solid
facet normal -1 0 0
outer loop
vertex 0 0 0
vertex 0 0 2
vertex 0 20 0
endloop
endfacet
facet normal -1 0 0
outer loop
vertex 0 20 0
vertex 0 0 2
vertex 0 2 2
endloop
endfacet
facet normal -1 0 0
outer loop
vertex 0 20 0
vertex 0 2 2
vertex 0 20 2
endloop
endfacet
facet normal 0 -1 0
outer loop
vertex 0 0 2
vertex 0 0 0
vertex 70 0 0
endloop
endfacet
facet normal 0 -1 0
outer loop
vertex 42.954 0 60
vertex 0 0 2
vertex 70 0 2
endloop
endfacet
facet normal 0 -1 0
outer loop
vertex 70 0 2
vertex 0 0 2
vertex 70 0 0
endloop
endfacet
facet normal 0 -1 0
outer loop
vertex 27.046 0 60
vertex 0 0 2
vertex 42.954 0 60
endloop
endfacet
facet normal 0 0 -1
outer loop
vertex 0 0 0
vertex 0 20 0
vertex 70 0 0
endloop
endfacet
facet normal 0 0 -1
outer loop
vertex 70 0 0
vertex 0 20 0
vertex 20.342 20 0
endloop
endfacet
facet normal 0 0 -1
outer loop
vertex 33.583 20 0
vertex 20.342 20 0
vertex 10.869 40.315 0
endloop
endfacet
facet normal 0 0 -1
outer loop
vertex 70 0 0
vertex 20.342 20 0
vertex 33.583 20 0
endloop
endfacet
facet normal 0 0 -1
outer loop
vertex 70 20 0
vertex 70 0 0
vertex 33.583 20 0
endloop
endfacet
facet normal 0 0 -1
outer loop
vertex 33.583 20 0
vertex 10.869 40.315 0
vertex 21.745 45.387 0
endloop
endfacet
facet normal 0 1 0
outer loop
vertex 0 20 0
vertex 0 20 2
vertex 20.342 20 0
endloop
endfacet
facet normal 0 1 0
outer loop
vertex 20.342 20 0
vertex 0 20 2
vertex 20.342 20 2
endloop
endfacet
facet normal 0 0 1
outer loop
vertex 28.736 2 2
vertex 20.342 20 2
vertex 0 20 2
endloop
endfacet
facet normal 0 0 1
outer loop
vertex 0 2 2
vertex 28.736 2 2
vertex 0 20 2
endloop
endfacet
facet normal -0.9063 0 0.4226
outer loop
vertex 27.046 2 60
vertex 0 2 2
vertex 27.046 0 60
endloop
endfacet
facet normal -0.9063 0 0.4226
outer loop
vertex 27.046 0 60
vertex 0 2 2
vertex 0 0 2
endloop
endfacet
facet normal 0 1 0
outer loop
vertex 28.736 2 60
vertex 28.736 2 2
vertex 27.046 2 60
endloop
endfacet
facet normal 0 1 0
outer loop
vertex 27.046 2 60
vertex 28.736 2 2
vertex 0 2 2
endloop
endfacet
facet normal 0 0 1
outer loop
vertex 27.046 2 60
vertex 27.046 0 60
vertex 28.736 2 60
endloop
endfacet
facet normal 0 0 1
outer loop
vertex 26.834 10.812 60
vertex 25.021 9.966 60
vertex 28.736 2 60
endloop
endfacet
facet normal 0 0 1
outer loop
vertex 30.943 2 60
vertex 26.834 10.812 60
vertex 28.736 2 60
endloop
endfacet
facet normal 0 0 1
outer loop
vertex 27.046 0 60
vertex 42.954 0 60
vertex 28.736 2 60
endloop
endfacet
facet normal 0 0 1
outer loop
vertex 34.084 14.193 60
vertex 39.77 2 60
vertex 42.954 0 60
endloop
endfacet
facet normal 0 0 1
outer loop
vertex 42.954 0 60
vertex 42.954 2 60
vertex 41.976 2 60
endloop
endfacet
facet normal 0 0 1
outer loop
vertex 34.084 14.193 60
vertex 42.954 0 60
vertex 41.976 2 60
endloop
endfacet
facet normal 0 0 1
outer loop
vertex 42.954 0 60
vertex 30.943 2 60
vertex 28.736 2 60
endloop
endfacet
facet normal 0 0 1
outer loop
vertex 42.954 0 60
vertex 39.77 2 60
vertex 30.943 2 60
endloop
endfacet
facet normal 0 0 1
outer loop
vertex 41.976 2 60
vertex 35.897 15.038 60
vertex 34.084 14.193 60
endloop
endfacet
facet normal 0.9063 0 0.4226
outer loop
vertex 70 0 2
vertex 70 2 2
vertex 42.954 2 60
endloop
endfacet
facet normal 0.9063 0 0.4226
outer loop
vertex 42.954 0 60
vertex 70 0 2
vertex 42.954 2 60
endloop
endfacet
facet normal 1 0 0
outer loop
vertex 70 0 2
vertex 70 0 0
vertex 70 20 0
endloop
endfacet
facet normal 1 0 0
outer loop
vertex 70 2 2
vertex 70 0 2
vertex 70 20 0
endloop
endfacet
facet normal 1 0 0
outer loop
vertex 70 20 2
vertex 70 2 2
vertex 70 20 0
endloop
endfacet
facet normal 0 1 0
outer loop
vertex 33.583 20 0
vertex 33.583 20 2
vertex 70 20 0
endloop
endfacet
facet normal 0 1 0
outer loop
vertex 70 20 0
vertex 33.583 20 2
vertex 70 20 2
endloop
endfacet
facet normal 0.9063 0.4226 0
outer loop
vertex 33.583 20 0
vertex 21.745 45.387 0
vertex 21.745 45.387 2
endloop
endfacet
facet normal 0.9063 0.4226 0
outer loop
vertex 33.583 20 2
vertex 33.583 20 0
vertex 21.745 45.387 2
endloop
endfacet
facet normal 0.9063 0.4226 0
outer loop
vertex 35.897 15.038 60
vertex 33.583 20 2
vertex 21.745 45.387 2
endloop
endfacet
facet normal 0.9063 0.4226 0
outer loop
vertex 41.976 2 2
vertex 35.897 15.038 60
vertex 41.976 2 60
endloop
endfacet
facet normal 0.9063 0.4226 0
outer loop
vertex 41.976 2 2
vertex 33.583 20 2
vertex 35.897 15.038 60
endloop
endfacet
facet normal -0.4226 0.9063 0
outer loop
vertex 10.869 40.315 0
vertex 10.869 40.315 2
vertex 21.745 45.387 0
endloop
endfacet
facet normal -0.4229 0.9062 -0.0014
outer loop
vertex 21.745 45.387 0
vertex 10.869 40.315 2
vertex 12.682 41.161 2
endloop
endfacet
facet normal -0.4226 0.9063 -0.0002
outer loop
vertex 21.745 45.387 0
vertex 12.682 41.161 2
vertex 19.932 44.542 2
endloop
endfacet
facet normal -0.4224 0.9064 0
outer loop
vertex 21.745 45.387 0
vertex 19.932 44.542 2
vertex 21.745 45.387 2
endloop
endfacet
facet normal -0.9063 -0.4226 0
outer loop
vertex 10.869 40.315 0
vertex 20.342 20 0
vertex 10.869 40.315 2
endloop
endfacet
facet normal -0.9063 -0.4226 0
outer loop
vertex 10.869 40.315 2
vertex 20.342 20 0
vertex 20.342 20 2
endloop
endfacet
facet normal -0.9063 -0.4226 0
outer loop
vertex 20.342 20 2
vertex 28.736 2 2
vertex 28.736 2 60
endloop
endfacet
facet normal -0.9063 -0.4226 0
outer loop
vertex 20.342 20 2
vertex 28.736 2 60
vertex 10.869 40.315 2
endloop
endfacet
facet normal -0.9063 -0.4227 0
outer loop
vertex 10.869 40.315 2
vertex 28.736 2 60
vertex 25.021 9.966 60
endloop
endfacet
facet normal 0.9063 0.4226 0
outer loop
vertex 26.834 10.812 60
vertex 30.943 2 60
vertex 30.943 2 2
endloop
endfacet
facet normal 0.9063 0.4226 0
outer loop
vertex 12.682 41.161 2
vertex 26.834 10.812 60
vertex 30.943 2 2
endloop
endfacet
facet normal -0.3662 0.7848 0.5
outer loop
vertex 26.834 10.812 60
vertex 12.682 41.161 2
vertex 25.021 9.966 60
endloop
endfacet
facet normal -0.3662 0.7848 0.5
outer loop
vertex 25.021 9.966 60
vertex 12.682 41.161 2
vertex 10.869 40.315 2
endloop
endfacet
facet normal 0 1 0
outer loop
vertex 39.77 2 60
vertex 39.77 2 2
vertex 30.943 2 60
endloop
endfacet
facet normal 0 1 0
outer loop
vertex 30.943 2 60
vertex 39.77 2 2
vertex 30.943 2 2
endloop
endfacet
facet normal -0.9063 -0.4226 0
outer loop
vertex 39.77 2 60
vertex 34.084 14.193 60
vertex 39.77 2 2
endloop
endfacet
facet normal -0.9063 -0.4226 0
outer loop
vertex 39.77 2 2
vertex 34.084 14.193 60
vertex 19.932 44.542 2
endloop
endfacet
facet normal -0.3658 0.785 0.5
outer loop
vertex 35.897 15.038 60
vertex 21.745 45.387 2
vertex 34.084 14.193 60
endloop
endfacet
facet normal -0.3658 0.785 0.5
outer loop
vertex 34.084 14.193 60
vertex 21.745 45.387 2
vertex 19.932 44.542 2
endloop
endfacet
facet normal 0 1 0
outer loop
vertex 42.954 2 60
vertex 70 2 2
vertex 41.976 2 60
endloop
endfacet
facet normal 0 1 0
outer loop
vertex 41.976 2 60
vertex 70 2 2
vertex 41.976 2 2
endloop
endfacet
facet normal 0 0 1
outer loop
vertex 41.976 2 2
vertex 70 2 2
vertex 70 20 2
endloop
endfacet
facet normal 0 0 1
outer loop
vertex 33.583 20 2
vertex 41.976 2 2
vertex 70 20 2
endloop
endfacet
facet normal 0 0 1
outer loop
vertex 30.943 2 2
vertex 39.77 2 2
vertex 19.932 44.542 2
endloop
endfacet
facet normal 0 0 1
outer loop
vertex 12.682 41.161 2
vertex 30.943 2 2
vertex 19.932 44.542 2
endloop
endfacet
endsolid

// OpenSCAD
union() {
	difference() {
		cube(size=[70,20,60]);
	
		translate(v=[-5,2,2]) cube(size=[80,20,60]);
	
		translate(v=[0,-5,2])
		rotate(a=[0,25,0])
		translate(v=[-40,0,0])
		cube(size=[40,10,80]);
	
		translate(v=[70,-5,2])
		rotate(a=[0,-25,0])
		translate(v=[0,0,0])
		cube(size=[40,10,80]);
	}
	difference() {
		translate(v=[32,-5,0])
		rotate(a=[0,0,25])
		difference() {
			cube(size=[12,50,60]);
			translate(v=[2,-1,2])
			cube(size=[8,52,60]);
			translate(v=[-1,50,2])
			rotate(a=[30,0,0])
			cube(size=[14,54,80]);
		}
		translate(v=[0,-11,-1])
		cube(size=[71,12,62]);
	}
}
